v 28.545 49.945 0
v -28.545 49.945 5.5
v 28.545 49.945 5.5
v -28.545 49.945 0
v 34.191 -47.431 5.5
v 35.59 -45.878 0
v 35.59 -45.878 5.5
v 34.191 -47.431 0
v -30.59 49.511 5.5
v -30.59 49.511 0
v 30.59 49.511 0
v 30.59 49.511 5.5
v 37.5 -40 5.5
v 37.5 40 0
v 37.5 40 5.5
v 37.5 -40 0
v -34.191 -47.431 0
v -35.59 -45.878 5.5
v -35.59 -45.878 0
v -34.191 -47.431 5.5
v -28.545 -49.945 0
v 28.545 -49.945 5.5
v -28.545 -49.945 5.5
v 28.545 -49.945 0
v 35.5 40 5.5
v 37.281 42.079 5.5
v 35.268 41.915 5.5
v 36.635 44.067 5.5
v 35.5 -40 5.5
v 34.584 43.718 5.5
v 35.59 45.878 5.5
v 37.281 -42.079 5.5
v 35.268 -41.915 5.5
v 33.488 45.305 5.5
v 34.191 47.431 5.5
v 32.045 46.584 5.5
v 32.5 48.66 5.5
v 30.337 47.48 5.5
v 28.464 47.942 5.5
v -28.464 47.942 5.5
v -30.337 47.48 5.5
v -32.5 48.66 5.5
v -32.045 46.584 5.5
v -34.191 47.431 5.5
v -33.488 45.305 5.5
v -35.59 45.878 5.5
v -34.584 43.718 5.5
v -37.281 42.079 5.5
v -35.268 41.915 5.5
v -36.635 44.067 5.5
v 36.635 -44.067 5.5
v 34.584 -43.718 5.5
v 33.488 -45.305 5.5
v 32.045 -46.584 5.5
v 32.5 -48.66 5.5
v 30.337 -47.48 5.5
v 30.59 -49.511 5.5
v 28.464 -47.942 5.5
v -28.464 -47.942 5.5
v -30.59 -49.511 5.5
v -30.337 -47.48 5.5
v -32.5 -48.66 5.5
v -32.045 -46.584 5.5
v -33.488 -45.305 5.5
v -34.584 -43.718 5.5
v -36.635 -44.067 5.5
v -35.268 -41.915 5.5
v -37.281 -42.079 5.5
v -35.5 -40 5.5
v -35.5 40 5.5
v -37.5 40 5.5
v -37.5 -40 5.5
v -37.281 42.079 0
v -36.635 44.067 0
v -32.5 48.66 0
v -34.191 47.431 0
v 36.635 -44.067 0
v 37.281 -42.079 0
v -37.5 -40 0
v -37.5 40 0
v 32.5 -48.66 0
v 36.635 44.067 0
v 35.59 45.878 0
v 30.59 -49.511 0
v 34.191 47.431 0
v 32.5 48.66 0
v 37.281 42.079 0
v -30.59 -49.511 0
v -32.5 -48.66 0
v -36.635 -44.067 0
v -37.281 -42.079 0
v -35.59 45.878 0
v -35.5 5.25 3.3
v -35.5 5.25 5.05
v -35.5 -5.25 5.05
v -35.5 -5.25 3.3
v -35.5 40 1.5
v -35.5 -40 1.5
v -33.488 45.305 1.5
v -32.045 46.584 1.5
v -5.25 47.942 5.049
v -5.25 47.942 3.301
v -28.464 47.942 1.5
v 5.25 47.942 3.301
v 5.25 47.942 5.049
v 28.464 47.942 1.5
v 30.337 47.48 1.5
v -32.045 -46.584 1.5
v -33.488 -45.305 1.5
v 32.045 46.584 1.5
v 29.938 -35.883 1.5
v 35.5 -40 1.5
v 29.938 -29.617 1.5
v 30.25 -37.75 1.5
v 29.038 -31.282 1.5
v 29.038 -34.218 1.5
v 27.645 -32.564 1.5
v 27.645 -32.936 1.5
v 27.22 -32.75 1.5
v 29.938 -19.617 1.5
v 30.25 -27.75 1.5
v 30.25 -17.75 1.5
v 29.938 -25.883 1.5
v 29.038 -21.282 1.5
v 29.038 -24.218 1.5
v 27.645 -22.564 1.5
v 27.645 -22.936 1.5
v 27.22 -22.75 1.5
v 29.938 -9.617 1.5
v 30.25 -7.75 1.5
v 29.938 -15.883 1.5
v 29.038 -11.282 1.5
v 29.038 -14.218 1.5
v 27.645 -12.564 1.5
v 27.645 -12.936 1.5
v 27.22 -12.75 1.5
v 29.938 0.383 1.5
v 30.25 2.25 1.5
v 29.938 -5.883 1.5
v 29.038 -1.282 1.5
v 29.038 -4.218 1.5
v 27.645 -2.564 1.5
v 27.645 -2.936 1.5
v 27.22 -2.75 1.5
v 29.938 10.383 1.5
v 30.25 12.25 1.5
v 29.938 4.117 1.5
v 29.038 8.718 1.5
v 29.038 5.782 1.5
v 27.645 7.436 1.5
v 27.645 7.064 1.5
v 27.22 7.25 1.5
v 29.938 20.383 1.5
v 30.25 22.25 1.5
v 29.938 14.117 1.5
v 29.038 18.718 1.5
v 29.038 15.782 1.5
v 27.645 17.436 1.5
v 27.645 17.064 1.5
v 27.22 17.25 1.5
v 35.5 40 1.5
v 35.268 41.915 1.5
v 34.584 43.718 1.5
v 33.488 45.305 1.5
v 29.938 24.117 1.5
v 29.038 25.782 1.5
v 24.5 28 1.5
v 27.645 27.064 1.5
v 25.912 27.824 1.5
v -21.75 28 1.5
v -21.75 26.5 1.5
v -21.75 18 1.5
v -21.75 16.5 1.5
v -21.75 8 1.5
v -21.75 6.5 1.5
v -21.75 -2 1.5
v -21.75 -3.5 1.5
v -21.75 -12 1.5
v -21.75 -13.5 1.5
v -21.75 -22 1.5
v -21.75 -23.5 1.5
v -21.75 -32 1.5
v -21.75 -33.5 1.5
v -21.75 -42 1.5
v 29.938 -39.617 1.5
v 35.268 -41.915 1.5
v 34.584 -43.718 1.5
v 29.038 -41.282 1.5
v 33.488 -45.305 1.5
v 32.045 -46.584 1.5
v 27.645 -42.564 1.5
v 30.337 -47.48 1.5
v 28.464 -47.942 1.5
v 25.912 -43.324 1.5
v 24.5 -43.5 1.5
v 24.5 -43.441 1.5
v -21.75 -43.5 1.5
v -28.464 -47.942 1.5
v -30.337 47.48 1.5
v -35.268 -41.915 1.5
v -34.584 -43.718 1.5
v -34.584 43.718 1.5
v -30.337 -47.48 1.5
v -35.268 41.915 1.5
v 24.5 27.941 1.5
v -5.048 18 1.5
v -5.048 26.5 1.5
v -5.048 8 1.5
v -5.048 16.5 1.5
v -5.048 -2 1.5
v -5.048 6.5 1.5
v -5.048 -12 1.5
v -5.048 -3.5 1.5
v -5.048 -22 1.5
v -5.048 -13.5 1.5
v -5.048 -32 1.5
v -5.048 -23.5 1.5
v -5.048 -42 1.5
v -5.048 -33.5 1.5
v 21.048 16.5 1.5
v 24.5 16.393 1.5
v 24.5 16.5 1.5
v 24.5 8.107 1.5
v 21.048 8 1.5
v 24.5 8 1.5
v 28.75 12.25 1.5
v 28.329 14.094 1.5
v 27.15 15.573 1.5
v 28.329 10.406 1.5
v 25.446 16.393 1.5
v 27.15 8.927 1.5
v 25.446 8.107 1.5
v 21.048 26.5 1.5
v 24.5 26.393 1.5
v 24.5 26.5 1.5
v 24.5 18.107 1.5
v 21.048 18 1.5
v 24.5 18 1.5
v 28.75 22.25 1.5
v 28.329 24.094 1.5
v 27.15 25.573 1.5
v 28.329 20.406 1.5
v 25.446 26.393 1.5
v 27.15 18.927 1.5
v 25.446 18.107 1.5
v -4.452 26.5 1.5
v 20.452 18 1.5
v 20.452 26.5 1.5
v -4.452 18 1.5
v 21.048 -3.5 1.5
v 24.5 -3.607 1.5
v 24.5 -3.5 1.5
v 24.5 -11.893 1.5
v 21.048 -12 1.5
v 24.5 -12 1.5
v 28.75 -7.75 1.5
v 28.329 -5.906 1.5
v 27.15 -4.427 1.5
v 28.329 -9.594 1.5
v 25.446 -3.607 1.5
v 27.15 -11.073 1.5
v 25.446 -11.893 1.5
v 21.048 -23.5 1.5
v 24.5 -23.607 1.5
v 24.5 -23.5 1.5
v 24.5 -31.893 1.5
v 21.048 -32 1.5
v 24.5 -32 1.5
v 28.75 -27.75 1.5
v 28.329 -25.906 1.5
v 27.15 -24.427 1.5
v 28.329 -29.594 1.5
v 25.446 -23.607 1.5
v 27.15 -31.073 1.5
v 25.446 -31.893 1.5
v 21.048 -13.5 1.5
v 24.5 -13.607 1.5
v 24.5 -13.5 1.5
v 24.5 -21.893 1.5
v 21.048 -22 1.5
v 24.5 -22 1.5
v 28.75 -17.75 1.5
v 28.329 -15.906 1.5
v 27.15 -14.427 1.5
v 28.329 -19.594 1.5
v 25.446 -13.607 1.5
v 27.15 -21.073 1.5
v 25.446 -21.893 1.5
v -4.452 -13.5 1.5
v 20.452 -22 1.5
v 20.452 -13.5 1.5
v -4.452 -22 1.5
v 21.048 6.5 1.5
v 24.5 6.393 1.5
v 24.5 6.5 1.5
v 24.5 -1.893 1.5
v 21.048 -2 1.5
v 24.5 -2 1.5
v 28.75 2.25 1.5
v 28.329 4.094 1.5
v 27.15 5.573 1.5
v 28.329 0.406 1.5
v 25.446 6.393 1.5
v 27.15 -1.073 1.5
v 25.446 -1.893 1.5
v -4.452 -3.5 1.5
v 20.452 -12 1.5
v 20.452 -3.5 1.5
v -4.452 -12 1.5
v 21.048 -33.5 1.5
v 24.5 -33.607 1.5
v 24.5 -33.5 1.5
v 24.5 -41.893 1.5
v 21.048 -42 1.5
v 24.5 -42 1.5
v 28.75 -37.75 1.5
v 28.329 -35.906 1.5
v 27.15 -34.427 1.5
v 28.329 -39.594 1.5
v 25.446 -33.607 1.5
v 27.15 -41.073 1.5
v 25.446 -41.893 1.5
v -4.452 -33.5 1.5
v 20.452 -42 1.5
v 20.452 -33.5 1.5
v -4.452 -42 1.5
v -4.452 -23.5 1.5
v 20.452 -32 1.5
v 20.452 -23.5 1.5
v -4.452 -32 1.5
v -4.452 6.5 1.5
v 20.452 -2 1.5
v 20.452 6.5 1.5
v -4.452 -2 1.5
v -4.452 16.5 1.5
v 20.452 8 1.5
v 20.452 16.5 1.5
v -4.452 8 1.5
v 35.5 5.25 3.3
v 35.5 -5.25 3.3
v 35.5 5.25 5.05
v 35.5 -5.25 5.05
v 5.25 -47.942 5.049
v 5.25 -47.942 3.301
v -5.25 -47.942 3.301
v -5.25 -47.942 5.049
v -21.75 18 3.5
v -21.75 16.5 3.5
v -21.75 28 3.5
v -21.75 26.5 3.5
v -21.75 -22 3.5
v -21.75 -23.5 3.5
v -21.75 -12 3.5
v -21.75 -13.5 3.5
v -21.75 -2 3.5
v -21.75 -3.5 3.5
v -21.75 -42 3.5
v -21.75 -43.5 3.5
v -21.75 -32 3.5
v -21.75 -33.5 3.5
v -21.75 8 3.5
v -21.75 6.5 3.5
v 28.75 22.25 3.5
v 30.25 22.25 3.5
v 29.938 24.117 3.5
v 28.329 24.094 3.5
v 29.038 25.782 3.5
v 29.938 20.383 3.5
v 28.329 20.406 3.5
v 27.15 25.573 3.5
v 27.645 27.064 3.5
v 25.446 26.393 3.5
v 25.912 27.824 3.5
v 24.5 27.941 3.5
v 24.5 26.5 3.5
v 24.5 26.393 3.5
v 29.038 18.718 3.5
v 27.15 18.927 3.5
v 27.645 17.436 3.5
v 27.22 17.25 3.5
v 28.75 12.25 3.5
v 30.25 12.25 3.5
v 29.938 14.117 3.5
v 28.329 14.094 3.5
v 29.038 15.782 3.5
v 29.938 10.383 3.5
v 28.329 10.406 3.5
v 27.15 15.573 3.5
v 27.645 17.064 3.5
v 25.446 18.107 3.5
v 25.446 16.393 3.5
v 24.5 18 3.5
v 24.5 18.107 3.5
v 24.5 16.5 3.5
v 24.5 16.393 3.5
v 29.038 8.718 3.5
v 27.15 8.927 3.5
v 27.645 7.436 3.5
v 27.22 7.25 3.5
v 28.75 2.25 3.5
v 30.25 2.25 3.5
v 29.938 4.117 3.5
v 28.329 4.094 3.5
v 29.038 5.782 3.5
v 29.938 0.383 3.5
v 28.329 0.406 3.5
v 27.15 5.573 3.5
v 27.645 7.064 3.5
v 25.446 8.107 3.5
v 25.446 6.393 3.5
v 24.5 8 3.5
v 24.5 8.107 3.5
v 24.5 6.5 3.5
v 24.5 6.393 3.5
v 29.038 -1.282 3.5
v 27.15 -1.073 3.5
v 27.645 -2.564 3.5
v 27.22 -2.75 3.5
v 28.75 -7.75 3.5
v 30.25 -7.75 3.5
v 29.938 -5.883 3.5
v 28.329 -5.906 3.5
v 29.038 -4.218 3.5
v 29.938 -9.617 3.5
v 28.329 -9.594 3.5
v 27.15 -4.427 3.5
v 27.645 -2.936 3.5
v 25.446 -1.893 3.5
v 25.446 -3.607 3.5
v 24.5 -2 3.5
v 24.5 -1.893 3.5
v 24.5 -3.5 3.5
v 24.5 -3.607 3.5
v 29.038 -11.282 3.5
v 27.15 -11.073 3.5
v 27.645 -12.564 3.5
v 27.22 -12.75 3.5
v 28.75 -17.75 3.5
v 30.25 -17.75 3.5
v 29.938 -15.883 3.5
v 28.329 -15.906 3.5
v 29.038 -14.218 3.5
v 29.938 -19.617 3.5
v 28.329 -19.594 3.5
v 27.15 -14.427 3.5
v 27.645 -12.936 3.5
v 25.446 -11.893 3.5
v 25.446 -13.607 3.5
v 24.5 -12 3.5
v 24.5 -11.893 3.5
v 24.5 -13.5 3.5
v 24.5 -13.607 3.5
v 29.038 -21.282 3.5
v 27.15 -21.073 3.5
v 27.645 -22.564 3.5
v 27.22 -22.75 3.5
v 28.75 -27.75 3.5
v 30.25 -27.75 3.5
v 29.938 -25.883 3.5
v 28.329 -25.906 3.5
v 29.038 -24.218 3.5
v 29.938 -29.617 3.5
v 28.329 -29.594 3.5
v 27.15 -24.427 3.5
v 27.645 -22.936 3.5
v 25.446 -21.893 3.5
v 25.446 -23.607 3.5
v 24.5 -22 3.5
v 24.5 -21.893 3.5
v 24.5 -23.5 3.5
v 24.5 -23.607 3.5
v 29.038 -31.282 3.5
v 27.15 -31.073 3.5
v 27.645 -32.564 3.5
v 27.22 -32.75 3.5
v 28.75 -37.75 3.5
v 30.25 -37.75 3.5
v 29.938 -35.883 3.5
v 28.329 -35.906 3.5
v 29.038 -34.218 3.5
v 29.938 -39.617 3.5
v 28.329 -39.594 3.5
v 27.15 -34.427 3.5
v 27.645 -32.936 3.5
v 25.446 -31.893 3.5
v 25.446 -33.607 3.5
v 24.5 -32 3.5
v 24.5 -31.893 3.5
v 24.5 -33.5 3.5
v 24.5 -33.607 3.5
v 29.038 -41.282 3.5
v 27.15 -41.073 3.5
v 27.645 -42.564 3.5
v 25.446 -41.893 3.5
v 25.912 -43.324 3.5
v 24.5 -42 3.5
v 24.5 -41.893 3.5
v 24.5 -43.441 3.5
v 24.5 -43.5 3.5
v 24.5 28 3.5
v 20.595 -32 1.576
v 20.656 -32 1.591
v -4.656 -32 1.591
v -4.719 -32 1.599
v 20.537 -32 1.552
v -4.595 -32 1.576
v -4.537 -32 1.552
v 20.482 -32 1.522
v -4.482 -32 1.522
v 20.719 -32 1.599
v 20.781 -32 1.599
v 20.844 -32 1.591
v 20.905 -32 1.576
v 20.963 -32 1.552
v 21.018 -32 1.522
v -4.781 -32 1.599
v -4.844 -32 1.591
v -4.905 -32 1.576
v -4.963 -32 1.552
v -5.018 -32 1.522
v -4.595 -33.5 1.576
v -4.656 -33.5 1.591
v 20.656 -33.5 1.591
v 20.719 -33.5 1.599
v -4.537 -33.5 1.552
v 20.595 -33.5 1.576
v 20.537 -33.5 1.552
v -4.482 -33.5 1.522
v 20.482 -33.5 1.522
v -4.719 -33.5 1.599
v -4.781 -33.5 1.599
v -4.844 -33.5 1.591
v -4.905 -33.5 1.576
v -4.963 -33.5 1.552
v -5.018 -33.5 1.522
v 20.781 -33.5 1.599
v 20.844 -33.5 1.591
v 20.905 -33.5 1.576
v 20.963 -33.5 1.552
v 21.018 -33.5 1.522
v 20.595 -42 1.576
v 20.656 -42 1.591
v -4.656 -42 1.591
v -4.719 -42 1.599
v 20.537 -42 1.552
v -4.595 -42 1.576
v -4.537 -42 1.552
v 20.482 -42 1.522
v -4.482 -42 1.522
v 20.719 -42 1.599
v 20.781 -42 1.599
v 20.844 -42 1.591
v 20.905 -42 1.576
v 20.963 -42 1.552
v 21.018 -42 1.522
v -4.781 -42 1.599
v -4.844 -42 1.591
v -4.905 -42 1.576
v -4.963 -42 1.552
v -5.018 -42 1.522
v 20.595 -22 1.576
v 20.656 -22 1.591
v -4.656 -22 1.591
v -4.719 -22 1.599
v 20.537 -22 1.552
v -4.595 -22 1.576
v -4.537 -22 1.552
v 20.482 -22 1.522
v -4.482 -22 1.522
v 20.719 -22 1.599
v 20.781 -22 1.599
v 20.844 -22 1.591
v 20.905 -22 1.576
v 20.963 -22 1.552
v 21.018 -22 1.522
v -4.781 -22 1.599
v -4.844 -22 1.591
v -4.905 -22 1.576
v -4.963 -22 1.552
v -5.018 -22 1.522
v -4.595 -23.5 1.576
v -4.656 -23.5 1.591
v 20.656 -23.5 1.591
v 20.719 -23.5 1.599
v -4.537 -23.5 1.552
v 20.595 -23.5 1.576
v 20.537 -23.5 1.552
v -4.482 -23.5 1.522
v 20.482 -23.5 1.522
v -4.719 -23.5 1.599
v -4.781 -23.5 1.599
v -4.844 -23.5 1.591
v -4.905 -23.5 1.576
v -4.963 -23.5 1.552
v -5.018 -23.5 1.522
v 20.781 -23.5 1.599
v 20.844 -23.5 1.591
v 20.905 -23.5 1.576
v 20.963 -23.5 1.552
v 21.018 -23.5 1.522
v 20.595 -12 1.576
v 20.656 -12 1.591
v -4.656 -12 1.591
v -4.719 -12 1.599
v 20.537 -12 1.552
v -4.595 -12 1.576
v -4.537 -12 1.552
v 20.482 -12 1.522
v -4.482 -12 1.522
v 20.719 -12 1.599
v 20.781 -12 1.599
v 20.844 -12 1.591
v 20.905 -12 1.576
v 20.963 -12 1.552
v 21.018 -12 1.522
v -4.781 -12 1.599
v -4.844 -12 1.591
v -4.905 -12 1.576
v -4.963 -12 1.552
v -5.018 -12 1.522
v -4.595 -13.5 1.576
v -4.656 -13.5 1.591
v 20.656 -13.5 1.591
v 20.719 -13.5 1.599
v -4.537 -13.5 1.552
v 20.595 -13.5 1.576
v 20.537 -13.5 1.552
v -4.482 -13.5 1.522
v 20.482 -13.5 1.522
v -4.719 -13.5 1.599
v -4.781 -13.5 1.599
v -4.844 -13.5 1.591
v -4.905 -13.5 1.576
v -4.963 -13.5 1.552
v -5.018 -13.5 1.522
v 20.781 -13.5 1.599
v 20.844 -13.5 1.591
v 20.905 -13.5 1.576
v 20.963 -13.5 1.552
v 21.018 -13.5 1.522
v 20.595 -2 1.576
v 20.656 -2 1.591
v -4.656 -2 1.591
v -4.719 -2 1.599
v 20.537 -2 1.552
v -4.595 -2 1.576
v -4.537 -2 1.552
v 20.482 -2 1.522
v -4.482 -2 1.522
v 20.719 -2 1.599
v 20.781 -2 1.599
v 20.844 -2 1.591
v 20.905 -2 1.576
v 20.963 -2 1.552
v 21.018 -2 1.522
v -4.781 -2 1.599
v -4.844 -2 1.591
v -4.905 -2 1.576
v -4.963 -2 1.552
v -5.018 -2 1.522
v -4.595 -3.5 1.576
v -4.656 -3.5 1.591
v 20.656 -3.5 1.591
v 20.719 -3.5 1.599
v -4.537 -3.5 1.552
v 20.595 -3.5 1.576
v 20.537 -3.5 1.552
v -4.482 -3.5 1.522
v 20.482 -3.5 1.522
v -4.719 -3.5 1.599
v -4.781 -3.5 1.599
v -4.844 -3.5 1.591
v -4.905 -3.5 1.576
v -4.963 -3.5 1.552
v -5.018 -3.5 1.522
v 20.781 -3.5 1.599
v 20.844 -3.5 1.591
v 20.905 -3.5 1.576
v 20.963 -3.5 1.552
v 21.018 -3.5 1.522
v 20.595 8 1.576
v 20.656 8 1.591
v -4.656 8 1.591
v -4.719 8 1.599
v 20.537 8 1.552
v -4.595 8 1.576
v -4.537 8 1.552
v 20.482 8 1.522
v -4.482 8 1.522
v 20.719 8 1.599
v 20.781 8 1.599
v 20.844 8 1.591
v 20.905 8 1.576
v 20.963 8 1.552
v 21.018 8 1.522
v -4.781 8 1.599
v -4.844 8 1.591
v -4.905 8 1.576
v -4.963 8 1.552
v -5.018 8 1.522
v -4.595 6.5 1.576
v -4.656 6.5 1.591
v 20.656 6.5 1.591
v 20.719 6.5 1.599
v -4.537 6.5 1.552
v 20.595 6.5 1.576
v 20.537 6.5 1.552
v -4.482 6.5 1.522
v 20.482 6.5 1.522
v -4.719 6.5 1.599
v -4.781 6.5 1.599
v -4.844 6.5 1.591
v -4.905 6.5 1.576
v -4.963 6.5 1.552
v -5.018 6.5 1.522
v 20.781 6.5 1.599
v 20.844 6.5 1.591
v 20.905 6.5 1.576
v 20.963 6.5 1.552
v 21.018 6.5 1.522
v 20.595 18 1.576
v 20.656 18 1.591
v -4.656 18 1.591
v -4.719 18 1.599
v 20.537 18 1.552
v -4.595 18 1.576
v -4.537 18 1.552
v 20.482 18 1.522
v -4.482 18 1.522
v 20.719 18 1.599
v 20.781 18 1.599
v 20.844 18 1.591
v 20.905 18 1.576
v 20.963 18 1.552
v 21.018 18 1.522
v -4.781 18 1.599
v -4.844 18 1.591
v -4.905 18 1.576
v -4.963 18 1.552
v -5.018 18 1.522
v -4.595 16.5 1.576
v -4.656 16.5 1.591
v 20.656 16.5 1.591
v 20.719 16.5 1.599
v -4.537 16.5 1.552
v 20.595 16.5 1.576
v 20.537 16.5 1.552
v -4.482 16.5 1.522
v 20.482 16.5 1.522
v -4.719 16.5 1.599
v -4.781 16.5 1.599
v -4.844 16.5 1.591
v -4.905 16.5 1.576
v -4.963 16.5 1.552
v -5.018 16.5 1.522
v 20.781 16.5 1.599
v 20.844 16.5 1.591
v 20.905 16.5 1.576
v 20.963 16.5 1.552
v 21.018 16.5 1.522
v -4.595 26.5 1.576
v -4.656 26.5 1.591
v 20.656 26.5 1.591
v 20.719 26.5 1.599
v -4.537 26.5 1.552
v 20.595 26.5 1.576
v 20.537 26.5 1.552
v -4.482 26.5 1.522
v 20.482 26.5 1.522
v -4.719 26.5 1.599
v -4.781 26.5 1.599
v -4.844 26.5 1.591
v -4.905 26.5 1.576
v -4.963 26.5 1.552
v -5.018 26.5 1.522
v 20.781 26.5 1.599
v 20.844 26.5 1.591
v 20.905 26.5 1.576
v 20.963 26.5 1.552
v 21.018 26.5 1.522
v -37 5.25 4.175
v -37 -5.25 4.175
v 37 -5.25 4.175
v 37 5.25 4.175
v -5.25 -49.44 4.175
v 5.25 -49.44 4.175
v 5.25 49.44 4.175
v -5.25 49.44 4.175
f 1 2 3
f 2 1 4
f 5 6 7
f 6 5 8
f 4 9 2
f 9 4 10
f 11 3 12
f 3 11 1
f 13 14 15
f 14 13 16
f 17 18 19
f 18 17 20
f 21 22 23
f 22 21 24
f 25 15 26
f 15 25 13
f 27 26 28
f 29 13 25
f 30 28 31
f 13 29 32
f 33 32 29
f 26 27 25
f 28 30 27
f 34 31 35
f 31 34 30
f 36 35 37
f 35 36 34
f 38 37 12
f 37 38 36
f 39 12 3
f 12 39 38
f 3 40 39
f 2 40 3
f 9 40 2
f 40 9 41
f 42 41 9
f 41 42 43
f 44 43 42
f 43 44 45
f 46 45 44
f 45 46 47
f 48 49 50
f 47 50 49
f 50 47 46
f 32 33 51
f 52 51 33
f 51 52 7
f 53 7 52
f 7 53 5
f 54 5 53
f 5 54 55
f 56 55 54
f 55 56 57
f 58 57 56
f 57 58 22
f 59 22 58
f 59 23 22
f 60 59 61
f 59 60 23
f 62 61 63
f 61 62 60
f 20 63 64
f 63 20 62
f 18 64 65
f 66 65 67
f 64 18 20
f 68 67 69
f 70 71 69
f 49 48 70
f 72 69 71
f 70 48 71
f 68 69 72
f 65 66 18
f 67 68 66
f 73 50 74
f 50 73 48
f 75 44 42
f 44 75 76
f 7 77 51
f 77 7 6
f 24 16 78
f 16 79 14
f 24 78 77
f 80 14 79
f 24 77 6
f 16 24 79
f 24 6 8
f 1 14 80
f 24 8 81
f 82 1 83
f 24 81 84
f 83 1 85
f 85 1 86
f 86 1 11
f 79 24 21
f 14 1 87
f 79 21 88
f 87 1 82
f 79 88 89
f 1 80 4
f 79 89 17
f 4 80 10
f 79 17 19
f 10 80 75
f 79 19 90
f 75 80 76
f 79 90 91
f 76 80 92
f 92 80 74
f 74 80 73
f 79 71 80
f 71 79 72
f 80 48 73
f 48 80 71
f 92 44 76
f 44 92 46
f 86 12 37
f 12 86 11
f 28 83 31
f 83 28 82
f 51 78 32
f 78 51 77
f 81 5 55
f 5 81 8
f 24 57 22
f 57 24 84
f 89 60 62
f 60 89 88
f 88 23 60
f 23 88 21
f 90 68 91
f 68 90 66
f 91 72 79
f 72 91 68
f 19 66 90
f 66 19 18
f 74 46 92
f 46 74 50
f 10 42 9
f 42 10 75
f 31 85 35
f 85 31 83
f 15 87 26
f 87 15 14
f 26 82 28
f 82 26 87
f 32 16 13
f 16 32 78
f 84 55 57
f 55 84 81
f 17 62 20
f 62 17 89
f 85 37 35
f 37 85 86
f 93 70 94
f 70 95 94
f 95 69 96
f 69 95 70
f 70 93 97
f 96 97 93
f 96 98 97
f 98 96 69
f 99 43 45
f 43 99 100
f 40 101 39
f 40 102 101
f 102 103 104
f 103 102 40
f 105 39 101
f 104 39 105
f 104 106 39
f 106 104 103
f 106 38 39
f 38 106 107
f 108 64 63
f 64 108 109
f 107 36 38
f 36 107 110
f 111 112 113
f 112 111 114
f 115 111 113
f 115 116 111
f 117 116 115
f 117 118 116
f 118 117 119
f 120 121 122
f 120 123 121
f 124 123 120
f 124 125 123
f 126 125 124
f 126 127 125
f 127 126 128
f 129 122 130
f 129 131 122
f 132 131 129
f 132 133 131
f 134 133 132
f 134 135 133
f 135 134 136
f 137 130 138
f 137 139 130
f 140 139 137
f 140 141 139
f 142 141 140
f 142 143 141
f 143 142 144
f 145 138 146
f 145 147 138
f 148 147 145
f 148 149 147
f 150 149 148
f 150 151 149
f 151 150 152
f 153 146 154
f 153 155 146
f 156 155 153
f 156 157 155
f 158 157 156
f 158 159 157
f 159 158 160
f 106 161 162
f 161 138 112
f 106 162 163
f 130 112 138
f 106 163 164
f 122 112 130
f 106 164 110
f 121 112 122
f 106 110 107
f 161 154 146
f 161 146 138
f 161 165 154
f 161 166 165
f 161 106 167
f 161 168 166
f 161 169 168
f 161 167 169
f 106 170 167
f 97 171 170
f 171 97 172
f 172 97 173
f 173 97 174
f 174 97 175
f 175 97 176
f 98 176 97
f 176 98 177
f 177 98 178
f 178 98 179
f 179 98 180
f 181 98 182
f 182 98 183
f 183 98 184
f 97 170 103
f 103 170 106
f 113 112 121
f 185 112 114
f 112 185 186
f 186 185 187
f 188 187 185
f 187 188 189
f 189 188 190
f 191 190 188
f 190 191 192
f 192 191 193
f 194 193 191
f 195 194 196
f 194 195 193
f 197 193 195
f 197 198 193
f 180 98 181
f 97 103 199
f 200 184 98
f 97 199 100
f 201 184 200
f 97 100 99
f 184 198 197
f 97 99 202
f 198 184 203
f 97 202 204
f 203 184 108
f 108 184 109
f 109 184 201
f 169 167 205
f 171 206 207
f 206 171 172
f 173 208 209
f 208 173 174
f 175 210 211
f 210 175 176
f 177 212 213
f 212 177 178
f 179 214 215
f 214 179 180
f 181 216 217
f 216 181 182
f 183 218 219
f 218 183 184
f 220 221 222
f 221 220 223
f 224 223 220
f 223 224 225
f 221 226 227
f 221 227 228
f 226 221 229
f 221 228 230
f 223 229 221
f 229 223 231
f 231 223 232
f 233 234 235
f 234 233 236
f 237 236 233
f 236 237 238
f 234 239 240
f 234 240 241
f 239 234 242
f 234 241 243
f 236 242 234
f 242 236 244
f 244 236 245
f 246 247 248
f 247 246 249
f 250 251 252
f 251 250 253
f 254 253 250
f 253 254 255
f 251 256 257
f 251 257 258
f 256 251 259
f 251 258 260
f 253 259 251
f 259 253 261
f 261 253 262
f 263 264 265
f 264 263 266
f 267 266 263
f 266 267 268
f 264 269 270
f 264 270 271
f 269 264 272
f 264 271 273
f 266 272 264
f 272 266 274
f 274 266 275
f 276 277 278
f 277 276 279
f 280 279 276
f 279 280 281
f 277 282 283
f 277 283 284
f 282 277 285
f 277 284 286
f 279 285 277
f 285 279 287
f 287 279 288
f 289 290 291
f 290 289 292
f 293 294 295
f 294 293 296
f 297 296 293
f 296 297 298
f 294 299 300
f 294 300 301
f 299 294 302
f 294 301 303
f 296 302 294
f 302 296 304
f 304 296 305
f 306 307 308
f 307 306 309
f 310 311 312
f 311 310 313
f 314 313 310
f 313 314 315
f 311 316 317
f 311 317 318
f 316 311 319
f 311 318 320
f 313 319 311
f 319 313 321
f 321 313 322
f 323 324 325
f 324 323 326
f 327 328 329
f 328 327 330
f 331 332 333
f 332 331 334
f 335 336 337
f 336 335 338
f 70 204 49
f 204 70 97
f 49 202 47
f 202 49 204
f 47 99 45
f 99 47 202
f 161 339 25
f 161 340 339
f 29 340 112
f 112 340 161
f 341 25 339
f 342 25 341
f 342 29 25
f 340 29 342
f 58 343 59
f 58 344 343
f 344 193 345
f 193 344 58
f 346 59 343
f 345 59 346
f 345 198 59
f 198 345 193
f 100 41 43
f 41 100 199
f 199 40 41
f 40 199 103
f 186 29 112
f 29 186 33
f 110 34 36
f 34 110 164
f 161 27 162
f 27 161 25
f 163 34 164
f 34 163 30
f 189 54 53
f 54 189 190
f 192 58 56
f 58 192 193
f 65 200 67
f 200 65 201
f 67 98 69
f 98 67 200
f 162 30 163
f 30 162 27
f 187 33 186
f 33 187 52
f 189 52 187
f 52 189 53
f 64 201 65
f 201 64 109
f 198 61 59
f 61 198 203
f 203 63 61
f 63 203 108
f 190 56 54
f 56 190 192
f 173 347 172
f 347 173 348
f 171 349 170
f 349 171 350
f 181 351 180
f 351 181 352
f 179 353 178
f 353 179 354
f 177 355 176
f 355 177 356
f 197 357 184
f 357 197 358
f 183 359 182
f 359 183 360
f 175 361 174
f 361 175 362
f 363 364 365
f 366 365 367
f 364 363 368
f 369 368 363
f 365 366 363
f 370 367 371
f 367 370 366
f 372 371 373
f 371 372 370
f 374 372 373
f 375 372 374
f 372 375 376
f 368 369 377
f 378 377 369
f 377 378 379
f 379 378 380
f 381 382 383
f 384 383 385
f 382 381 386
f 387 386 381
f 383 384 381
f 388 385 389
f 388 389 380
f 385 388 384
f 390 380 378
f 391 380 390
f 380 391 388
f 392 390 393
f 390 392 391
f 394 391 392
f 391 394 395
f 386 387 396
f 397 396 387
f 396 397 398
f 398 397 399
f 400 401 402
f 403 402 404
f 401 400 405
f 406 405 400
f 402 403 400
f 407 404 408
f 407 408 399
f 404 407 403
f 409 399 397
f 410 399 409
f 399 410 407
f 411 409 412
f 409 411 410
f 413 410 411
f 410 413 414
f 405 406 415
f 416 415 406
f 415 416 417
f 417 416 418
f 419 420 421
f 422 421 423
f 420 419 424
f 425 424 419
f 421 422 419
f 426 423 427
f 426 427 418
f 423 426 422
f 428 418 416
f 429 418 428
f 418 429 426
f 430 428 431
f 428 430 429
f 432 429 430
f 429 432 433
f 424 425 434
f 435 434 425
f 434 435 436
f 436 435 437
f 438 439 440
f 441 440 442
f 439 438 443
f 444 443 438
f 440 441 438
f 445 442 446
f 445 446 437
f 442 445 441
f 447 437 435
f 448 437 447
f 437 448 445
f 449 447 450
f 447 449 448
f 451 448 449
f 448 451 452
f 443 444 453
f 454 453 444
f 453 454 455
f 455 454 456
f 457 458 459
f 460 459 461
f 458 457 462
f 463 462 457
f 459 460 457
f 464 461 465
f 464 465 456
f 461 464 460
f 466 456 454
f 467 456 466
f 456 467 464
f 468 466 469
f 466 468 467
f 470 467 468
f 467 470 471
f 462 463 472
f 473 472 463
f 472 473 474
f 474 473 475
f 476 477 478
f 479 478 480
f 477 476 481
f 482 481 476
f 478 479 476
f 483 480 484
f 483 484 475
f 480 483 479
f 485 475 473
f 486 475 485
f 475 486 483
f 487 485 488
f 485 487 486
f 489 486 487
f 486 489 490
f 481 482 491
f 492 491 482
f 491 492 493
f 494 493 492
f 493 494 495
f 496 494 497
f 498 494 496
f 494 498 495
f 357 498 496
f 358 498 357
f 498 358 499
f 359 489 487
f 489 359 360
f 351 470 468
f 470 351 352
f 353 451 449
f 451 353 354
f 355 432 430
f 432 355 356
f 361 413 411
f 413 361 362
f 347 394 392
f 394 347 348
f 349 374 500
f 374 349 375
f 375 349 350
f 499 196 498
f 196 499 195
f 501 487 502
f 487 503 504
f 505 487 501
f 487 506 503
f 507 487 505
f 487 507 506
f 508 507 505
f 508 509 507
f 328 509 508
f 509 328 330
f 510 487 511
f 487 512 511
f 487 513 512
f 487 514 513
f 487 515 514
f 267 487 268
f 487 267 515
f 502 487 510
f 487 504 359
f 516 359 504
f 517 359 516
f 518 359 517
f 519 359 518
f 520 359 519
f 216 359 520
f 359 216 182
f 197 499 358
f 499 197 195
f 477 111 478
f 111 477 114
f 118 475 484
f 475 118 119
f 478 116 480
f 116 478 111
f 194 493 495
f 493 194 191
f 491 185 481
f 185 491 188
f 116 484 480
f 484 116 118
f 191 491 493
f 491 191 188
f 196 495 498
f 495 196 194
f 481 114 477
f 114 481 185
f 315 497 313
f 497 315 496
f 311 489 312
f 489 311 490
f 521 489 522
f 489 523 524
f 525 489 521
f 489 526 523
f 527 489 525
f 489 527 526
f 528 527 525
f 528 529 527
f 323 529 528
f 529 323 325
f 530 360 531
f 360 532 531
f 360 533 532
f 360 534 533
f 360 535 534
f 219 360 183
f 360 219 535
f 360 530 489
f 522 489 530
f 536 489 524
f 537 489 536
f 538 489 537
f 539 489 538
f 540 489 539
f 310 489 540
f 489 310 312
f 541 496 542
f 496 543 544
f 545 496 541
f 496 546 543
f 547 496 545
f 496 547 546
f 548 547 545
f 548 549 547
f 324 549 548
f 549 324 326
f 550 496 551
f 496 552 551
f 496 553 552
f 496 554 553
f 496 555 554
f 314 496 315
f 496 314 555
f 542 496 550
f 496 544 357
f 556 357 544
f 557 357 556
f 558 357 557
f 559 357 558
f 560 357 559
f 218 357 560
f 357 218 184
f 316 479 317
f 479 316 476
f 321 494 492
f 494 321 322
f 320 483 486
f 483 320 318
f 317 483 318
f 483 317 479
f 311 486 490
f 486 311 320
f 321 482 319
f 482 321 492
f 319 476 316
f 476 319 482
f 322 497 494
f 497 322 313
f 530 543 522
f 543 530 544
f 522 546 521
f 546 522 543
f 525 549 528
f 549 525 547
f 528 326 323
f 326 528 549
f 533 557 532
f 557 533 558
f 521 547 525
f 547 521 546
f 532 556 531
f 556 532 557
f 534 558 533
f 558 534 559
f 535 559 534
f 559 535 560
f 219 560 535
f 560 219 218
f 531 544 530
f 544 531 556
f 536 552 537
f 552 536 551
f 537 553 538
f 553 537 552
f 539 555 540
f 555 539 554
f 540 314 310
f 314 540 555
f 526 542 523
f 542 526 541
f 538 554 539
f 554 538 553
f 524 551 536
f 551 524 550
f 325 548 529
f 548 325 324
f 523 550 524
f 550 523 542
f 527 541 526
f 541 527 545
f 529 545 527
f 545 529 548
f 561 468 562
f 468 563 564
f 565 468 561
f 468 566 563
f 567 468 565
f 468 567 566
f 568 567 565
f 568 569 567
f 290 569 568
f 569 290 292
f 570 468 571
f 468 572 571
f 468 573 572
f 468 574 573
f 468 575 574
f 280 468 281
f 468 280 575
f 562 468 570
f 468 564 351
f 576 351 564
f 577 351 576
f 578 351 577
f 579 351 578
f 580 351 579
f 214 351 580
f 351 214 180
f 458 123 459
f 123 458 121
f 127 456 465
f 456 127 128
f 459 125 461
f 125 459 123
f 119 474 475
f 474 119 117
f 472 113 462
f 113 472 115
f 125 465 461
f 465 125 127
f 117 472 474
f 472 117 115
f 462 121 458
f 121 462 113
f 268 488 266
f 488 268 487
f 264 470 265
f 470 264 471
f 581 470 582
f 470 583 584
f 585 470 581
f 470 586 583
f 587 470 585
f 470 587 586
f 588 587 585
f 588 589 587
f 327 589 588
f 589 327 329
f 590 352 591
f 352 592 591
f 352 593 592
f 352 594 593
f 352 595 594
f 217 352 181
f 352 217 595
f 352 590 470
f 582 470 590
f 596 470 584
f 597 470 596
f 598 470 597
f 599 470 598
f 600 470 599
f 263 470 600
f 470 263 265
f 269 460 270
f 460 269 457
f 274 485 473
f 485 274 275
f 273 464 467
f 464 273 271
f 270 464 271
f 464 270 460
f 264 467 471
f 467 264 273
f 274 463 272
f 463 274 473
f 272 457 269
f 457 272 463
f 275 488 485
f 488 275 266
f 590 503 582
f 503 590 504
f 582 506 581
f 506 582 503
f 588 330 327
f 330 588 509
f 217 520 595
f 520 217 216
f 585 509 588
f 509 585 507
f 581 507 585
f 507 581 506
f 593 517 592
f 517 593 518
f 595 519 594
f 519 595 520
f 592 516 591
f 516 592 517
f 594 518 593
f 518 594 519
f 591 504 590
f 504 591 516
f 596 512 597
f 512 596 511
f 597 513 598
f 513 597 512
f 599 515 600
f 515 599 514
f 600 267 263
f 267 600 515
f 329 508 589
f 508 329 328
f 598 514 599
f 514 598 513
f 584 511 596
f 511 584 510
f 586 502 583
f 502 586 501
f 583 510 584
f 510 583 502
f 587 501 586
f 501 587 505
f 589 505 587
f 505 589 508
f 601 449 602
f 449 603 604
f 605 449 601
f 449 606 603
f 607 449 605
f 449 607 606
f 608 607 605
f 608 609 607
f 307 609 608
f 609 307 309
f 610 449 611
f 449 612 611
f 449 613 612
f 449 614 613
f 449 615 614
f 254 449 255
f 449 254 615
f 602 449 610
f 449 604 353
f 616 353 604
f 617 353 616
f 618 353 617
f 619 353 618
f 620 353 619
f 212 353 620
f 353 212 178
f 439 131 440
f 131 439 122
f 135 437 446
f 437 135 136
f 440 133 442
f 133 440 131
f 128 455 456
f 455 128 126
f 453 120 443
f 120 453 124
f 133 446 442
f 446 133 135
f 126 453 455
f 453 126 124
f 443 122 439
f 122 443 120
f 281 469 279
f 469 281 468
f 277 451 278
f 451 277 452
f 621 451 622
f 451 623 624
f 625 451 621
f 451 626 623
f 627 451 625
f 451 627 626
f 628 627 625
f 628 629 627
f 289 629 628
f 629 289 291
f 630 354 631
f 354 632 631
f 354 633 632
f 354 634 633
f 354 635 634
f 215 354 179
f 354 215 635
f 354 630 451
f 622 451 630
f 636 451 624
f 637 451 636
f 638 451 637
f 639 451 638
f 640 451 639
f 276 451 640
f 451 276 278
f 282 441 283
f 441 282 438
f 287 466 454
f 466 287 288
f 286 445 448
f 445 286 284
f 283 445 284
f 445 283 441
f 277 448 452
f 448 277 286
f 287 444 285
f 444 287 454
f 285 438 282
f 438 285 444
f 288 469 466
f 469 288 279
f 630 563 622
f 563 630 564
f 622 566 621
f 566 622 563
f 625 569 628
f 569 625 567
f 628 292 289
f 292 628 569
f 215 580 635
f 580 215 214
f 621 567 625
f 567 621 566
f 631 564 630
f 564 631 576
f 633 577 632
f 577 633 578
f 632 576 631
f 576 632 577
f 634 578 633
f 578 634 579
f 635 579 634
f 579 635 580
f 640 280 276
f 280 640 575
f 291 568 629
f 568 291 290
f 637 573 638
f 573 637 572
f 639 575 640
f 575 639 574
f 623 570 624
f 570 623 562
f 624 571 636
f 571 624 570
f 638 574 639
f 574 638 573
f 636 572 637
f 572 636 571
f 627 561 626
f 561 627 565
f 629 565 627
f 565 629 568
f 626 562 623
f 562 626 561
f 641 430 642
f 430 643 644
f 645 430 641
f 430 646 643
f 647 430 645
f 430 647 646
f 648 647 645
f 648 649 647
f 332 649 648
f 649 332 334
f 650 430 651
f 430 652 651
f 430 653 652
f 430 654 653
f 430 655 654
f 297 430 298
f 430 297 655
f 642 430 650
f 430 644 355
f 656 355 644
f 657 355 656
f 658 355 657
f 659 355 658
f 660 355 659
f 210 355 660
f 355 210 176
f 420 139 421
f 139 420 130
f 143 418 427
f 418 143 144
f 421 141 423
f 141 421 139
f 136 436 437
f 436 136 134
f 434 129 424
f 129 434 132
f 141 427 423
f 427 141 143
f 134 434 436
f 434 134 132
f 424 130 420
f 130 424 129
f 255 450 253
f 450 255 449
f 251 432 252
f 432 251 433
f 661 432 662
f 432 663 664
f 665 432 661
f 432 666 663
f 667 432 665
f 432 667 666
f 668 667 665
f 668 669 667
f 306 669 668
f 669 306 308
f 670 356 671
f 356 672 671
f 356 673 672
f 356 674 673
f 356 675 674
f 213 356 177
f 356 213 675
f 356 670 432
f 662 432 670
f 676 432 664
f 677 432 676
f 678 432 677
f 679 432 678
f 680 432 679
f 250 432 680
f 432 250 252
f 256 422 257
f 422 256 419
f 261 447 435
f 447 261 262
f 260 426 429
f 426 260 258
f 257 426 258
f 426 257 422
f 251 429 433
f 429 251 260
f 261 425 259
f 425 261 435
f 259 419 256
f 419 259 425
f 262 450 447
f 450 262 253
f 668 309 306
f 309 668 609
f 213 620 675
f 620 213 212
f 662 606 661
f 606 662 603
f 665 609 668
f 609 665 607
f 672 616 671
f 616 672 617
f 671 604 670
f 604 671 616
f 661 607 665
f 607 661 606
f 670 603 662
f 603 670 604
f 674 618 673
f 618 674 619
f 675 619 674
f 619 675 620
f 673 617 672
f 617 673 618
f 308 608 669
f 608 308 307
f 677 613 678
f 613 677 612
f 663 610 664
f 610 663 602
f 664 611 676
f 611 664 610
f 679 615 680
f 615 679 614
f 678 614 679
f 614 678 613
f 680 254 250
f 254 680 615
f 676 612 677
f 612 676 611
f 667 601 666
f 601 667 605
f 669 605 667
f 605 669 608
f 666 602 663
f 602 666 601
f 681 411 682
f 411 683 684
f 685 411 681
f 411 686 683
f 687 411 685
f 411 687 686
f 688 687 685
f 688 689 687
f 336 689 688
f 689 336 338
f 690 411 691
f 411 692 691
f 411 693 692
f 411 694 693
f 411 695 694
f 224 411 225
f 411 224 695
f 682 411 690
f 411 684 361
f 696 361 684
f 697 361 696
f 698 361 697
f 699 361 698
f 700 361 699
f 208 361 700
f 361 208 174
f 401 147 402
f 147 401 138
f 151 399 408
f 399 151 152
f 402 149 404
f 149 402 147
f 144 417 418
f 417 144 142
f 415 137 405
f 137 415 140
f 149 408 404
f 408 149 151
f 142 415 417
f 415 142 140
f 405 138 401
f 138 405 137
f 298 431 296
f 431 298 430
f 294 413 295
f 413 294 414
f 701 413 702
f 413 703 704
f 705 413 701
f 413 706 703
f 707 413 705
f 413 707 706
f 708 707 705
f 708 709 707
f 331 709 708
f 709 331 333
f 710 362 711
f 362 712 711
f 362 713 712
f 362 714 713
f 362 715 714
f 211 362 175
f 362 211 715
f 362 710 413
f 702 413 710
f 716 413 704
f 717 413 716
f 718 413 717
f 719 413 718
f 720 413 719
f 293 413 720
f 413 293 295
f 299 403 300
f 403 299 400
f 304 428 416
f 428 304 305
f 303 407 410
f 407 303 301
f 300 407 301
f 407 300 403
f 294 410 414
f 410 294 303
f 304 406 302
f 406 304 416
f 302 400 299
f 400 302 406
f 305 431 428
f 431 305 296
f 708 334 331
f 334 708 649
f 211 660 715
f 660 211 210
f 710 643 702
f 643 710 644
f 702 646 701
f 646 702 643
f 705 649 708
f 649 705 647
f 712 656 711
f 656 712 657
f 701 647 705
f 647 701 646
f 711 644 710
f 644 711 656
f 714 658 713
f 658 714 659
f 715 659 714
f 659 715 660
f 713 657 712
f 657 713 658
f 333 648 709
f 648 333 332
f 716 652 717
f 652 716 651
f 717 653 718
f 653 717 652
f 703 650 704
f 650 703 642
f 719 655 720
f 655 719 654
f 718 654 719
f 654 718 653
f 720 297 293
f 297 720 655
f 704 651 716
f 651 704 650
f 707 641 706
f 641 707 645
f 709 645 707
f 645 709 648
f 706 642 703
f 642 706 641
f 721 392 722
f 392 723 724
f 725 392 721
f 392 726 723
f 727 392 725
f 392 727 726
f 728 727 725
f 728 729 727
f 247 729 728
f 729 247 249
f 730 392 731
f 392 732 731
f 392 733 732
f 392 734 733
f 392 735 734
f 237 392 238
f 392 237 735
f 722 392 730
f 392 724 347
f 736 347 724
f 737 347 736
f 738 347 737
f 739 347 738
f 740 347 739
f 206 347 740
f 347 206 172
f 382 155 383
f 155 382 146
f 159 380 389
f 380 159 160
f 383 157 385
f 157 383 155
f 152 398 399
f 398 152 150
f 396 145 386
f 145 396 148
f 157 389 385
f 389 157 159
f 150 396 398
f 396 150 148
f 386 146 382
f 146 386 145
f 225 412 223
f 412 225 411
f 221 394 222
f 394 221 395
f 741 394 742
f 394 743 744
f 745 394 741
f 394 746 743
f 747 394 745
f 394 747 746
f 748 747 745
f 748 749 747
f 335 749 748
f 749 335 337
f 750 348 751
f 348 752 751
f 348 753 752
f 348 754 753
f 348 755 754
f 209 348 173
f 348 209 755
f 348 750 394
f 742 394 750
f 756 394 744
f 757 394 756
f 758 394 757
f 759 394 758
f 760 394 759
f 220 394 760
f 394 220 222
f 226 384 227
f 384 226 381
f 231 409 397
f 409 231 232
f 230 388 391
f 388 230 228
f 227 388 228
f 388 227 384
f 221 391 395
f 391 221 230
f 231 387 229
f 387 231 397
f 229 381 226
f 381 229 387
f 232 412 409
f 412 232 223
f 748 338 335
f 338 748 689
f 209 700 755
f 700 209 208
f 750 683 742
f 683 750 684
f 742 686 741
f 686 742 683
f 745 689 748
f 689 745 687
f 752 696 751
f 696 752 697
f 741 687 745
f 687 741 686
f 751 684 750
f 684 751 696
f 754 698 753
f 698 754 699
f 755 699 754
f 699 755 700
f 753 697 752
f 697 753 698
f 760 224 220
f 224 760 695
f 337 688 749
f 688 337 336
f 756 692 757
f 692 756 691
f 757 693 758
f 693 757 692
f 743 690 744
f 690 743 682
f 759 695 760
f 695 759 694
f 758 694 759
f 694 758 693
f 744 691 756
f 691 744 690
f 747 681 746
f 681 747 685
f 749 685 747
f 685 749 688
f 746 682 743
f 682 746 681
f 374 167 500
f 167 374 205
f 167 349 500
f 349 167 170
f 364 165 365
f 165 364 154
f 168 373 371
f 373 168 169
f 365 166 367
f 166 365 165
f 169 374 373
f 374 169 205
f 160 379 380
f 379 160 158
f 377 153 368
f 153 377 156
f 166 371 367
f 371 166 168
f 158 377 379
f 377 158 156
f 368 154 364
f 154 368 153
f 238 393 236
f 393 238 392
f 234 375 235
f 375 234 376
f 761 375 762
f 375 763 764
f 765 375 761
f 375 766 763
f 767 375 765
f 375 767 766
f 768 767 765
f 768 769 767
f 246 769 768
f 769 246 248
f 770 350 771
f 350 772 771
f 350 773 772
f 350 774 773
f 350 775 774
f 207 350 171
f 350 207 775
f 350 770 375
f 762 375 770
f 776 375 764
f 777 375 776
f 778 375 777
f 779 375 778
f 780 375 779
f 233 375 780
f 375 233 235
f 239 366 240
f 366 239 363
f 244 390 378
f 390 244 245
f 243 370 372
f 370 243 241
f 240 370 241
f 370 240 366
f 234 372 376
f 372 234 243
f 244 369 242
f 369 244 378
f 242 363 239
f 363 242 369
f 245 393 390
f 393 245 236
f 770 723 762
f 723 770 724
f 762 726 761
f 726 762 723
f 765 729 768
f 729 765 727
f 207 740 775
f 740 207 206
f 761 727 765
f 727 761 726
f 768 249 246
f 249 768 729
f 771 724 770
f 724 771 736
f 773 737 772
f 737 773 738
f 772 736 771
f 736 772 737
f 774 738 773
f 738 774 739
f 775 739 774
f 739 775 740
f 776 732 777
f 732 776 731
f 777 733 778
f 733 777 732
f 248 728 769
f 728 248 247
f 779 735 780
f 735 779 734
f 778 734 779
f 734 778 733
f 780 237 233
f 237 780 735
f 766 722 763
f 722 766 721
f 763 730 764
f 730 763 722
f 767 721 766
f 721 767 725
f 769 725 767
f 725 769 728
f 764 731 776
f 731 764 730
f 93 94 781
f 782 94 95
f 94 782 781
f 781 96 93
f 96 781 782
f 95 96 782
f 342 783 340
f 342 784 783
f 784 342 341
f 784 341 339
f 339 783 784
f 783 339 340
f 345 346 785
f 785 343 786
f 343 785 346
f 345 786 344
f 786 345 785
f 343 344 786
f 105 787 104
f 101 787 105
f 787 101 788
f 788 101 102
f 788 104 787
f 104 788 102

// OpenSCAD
//$fn=50;
L = 100; //Length of the plate, original = 100
W = 75; //Width of the plate, original = 75
H = 5.5; //Total Height, original = 5.5
wt = 2; //Wall thickness, original = 2


module base_outer(){
    translate([0,0,H/4]){
        minkowski(){
            cube([W-2*10,L-2*10,H/2],center=true);//75mmx105mm
            cylinder(r=10, h=H/2);
        }
    }
}
module base_inner(){
    translate([0,0,H/4+1.5]){
        minkowski(){
            cube([W-2*wt-2*8,L-2*wt-2*8,H/2],center=true);
            cylinder(r=8, h=H/2);
        }
    }
}
module baseplate(){ //Subtract inner from outer base
difference(){
    base_outer();
    base_inner();
}
}
module track_outer(){  
translate([0,0,1.5]){
union(){
cube([34.25+12,11.5,2]);
translate([0,11.5/2,0]){
    cylinder(r=11.5/2,h=2);
}
translate([34.25+12,11.5/2,0]){
    cylinder(r=11.5/2,h=2);
}
}
}
}
module track_inner(){  
translate([0,1.5,1.5]){
union(){
cube([34.25+12,8.5,2.5]);
translate([0,8.5/2,0]){
    cylinder(r=8.5/2,h=2.5);
}
translate([34.25+12,8.5/2,0]){
    cylinder(r=8.5/2,h=2.5);
}
}
}
}
module track(x,y){  //Subtract inner from outer track
    translate([x,y,0]){
        difference(){
            track_outer();
            track_inner();
        }
        translate([17,1.5,H/5]) rotate([-90,0,0]) cylinder(d=1, h=8.5, $fn=50);
        translate([42.5,1.5,H/5]) rotate([-90,0,0]) cylinder(d=1, h=8.5, $fn=50);
    }
}
module tracks(){    //Combine 7 tracks
    
    union(){
    track(0,0);
    track(0,11.5-1.5);
    track(0,11.5*2-1.5*2);
    track(0,11.5*3-1.5*3);
    track(0,11.5*4-1.5*4);
    track(0,11.5*5-1.5*5);
    track(0,11.5*6-1.5*6);
    }
}
module track_sub(){ //Open left end of all tracks
    translate([-8.5,0,0]){
    cube([8.5,75,5]);
}
}
module tracks_final(x,y){ //Position all tracks
    translate([x,y,0]){
        difference(){
        tracks();
        track_sub();
    }
}
}
module base_tracks(){   //Combine tracks to baseplate
    union(){
        baseplate();
        tracks_final(W/2-46.25-13,-L/2+6.5);
    }
}

module tab(angle){  //Create triangular tabs    
rotate(a=angle, v=[0,0,1]){
rotate(a=-90, v=[0,1,0]){
rotate(a=90, v=[1,0,0]){
 linear_extrude(height = 10.5, center = true, convexity = 10, twist = 0, slices = 100, scale = 1.0) {
 polygon(points=[[0,0],[1.75/2,1.5],[1.75,0]]);
 }
 }
 }
 }
 }
module tabs(){      //Position all tabs
     
 translate([-W/2+wt,0,H-2.2]){
 tab(0);
 }
 
translate([W/2-wt,0,H-2.2]){
    tab(180);
}
translate([0,-L/2+wt+0.06,H-2.2]){
    tab(90);
}

translate([0,L/2-wt-0.06,H-2.2]){
    tab(270);
}
}
module final(){     //Subtract tabs from baseplate
difference(){
base_tracks();
tabs();
}
}
final();

// // ///////////////////////////////
// color("Green") translate([-16.25, 18.25,H/4]) import("Slider_V2.STL");
// color("Green") translate([16.25, 18.25,H/4]) import("Slider_V2.STL");

// module slot(x,y){  //Cutout slot, (x,y) = position
// translate([x,y,0]){
// union(){
// cube([8.5,7,1.5]);
// translate([0,3.5,0]){
//     cylinder(r=3.5,h=1.5);
// }
// translate([8.5,3.5,0]){
//     cylinder(r=3.5,h=1.5);
// }
// }
// }
// }
//     // translate([0,2,H/4]) slot(-9.25, 16.25); //Sunday-AM
//     // translate([0,2,H/4]) slot(16.25, 16.25); //Sunday-PM
